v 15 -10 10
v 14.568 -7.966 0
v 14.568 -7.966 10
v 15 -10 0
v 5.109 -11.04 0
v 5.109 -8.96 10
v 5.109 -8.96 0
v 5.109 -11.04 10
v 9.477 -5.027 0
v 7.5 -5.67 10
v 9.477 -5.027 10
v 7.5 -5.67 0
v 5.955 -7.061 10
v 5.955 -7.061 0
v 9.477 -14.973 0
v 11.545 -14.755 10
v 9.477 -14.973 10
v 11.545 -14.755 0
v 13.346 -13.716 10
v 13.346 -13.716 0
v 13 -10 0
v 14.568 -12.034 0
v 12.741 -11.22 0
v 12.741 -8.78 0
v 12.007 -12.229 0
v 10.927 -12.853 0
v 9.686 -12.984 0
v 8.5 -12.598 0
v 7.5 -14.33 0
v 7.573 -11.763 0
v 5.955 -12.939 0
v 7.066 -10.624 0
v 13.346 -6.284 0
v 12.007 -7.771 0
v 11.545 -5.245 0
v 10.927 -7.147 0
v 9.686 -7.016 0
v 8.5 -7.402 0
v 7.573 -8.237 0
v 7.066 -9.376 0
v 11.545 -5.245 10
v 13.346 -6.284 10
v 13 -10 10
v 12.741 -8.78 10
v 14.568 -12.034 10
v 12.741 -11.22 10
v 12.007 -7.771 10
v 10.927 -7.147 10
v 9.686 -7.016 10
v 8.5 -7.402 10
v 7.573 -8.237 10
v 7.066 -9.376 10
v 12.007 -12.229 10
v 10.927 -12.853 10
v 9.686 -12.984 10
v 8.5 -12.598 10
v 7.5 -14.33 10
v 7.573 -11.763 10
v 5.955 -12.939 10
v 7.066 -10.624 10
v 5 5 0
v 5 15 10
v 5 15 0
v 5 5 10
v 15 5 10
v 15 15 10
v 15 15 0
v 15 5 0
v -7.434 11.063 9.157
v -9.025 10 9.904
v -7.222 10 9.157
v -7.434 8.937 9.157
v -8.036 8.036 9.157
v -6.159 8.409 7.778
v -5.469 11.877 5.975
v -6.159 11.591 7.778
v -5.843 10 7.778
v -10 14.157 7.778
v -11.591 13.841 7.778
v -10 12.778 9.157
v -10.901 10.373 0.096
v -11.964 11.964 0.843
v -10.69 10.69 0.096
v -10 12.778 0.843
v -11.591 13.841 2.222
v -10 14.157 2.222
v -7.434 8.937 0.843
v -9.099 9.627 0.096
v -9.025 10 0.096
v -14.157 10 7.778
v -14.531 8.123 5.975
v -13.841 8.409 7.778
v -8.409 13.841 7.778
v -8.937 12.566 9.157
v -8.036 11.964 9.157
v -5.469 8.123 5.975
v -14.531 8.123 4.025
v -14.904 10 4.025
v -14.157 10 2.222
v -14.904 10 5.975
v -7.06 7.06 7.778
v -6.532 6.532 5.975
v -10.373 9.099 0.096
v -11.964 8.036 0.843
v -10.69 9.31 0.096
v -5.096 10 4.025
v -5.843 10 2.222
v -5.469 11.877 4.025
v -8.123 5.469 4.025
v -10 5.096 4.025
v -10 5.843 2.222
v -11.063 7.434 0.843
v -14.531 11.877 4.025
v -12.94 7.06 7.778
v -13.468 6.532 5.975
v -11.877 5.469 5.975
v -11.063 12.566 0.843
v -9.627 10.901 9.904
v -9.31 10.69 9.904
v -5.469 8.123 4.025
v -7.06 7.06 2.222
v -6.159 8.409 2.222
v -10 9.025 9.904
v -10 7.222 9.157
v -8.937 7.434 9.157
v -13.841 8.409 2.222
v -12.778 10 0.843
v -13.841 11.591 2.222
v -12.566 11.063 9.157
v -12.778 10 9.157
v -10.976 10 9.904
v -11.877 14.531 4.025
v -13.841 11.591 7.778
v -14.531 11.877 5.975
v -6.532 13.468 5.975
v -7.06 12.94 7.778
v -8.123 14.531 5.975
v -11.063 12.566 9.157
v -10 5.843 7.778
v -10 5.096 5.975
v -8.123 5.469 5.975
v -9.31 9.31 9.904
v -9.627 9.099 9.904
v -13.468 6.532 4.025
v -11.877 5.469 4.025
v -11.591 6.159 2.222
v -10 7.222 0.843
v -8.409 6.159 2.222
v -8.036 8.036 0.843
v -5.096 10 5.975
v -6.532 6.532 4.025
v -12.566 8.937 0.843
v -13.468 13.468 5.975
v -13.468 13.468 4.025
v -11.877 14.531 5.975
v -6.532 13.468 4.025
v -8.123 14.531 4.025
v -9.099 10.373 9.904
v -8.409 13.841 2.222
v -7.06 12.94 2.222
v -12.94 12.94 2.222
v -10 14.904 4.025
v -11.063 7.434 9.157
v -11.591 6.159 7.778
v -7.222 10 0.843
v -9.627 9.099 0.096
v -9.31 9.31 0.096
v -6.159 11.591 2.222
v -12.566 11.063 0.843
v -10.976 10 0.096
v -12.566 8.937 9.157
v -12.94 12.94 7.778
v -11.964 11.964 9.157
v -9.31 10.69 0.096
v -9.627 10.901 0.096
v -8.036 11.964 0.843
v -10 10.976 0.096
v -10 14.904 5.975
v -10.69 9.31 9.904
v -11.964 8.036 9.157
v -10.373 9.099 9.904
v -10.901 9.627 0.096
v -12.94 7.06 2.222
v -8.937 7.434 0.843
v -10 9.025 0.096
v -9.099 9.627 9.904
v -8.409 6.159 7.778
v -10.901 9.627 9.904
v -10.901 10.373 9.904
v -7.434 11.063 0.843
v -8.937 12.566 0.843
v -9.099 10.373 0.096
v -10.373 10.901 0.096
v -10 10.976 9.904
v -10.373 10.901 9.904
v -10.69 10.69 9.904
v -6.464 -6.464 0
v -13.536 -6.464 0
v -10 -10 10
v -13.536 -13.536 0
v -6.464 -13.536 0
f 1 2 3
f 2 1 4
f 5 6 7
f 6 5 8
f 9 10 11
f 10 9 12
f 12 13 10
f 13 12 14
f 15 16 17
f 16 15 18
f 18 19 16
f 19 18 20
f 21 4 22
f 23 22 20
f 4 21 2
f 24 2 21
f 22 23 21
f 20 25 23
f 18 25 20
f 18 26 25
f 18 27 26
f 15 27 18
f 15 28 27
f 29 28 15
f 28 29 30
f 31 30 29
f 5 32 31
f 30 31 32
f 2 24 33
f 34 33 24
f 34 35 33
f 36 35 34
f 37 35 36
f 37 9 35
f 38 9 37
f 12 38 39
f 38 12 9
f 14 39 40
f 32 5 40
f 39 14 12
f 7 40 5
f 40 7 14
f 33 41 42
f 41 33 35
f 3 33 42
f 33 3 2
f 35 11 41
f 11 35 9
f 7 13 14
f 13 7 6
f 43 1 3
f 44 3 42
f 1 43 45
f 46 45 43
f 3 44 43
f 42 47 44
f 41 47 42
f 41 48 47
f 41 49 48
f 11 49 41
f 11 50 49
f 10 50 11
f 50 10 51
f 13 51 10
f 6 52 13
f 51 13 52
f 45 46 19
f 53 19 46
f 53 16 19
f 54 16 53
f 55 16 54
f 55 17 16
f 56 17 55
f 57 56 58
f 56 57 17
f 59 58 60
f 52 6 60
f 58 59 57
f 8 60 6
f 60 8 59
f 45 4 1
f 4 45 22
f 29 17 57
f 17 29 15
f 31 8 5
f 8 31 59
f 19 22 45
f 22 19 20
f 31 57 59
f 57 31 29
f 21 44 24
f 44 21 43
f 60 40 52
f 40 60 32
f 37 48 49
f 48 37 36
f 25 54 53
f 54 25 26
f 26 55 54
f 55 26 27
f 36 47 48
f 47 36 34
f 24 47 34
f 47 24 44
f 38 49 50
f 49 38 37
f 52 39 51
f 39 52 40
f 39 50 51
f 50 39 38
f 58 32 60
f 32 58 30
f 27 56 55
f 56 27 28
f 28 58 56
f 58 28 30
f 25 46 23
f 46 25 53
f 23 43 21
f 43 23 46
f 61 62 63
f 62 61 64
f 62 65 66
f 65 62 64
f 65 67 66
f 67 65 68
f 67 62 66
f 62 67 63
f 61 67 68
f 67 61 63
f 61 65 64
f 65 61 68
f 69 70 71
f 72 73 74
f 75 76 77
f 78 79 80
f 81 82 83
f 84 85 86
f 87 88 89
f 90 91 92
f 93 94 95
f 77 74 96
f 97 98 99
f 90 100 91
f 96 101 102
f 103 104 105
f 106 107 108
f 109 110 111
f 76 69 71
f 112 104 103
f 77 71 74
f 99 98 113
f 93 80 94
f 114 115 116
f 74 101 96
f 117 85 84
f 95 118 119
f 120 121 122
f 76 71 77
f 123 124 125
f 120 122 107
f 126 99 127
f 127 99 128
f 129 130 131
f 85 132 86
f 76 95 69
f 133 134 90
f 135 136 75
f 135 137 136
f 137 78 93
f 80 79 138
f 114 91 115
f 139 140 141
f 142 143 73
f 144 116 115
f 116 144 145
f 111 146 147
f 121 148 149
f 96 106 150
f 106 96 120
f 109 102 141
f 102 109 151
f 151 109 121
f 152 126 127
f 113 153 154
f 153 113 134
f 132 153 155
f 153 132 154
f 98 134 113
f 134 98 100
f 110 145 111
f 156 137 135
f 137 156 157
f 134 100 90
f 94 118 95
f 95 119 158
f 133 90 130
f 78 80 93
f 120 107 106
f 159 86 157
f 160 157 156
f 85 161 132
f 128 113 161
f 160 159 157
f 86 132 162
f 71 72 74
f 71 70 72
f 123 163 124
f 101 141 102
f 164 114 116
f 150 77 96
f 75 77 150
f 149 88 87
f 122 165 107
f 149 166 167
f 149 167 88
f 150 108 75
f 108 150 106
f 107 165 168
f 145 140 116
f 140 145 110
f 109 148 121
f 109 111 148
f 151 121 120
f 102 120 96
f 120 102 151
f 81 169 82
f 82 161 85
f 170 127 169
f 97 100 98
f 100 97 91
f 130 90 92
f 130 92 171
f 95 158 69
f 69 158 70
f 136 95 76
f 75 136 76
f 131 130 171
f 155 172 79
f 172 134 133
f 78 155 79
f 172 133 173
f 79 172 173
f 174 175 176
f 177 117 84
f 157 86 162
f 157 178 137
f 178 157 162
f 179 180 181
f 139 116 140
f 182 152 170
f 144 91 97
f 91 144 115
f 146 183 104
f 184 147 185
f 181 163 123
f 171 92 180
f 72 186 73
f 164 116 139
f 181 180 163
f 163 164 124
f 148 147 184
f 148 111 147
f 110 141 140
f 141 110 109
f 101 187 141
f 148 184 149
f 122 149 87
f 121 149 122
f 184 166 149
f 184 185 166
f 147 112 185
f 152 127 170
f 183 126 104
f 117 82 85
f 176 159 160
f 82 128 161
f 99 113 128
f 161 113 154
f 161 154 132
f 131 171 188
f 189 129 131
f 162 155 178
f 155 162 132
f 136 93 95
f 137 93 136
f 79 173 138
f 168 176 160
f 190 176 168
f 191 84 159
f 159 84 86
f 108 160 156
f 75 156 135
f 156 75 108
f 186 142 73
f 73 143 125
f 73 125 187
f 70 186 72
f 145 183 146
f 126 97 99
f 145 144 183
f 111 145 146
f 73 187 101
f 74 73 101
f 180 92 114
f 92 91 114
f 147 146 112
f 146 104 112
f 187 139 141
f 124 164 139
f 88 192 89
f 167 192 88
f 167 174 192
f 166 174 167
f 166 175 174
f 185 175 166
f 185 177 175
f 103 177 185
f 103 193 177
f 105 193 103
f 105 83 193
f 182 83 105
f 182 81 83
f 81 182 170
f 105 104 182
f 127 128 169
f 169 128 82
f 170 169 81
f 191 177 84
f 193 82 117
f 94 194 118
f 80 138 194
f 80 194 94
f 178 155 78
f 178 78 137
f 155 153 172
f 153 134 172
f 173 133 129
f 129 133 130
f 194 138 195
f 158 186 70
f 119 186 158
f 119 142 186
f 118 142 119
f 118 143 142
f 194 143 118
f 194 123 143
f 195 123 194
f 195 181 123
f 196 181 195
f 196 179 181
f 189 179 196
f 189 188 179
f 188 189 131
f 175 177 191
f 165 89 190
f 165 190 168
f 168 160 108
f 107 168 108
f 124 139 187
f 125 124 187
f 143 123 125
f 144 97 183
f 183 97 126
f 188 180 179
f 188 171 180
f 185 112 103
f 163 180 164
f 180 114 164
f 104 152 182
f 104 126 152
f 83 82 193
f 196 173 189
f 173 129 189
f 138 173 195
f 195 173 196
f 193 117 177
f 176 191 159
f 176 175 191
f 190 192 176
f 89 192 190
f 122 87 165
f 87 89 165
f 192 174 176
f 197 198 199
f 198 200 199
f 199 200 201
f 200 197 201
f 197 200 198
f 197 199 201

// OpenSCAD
translate([5, 5, 0])
    cube(10);

translate([-10, 10, 5])
    sphere(5);
    
translate([-10, -10, 5])
    rotate([0, 0, 45])
        cylinder(h=10, r1=5, r2=0, center=true, $fn=4);
           
translate([10, -10, 0])
    difference()
    {
        cylinder(h=10, r=5, center=false, $fn=15);
        translate([0, 0, -1])
            cylinder(h=12, r=3, center=false, $fn=15);
    }
